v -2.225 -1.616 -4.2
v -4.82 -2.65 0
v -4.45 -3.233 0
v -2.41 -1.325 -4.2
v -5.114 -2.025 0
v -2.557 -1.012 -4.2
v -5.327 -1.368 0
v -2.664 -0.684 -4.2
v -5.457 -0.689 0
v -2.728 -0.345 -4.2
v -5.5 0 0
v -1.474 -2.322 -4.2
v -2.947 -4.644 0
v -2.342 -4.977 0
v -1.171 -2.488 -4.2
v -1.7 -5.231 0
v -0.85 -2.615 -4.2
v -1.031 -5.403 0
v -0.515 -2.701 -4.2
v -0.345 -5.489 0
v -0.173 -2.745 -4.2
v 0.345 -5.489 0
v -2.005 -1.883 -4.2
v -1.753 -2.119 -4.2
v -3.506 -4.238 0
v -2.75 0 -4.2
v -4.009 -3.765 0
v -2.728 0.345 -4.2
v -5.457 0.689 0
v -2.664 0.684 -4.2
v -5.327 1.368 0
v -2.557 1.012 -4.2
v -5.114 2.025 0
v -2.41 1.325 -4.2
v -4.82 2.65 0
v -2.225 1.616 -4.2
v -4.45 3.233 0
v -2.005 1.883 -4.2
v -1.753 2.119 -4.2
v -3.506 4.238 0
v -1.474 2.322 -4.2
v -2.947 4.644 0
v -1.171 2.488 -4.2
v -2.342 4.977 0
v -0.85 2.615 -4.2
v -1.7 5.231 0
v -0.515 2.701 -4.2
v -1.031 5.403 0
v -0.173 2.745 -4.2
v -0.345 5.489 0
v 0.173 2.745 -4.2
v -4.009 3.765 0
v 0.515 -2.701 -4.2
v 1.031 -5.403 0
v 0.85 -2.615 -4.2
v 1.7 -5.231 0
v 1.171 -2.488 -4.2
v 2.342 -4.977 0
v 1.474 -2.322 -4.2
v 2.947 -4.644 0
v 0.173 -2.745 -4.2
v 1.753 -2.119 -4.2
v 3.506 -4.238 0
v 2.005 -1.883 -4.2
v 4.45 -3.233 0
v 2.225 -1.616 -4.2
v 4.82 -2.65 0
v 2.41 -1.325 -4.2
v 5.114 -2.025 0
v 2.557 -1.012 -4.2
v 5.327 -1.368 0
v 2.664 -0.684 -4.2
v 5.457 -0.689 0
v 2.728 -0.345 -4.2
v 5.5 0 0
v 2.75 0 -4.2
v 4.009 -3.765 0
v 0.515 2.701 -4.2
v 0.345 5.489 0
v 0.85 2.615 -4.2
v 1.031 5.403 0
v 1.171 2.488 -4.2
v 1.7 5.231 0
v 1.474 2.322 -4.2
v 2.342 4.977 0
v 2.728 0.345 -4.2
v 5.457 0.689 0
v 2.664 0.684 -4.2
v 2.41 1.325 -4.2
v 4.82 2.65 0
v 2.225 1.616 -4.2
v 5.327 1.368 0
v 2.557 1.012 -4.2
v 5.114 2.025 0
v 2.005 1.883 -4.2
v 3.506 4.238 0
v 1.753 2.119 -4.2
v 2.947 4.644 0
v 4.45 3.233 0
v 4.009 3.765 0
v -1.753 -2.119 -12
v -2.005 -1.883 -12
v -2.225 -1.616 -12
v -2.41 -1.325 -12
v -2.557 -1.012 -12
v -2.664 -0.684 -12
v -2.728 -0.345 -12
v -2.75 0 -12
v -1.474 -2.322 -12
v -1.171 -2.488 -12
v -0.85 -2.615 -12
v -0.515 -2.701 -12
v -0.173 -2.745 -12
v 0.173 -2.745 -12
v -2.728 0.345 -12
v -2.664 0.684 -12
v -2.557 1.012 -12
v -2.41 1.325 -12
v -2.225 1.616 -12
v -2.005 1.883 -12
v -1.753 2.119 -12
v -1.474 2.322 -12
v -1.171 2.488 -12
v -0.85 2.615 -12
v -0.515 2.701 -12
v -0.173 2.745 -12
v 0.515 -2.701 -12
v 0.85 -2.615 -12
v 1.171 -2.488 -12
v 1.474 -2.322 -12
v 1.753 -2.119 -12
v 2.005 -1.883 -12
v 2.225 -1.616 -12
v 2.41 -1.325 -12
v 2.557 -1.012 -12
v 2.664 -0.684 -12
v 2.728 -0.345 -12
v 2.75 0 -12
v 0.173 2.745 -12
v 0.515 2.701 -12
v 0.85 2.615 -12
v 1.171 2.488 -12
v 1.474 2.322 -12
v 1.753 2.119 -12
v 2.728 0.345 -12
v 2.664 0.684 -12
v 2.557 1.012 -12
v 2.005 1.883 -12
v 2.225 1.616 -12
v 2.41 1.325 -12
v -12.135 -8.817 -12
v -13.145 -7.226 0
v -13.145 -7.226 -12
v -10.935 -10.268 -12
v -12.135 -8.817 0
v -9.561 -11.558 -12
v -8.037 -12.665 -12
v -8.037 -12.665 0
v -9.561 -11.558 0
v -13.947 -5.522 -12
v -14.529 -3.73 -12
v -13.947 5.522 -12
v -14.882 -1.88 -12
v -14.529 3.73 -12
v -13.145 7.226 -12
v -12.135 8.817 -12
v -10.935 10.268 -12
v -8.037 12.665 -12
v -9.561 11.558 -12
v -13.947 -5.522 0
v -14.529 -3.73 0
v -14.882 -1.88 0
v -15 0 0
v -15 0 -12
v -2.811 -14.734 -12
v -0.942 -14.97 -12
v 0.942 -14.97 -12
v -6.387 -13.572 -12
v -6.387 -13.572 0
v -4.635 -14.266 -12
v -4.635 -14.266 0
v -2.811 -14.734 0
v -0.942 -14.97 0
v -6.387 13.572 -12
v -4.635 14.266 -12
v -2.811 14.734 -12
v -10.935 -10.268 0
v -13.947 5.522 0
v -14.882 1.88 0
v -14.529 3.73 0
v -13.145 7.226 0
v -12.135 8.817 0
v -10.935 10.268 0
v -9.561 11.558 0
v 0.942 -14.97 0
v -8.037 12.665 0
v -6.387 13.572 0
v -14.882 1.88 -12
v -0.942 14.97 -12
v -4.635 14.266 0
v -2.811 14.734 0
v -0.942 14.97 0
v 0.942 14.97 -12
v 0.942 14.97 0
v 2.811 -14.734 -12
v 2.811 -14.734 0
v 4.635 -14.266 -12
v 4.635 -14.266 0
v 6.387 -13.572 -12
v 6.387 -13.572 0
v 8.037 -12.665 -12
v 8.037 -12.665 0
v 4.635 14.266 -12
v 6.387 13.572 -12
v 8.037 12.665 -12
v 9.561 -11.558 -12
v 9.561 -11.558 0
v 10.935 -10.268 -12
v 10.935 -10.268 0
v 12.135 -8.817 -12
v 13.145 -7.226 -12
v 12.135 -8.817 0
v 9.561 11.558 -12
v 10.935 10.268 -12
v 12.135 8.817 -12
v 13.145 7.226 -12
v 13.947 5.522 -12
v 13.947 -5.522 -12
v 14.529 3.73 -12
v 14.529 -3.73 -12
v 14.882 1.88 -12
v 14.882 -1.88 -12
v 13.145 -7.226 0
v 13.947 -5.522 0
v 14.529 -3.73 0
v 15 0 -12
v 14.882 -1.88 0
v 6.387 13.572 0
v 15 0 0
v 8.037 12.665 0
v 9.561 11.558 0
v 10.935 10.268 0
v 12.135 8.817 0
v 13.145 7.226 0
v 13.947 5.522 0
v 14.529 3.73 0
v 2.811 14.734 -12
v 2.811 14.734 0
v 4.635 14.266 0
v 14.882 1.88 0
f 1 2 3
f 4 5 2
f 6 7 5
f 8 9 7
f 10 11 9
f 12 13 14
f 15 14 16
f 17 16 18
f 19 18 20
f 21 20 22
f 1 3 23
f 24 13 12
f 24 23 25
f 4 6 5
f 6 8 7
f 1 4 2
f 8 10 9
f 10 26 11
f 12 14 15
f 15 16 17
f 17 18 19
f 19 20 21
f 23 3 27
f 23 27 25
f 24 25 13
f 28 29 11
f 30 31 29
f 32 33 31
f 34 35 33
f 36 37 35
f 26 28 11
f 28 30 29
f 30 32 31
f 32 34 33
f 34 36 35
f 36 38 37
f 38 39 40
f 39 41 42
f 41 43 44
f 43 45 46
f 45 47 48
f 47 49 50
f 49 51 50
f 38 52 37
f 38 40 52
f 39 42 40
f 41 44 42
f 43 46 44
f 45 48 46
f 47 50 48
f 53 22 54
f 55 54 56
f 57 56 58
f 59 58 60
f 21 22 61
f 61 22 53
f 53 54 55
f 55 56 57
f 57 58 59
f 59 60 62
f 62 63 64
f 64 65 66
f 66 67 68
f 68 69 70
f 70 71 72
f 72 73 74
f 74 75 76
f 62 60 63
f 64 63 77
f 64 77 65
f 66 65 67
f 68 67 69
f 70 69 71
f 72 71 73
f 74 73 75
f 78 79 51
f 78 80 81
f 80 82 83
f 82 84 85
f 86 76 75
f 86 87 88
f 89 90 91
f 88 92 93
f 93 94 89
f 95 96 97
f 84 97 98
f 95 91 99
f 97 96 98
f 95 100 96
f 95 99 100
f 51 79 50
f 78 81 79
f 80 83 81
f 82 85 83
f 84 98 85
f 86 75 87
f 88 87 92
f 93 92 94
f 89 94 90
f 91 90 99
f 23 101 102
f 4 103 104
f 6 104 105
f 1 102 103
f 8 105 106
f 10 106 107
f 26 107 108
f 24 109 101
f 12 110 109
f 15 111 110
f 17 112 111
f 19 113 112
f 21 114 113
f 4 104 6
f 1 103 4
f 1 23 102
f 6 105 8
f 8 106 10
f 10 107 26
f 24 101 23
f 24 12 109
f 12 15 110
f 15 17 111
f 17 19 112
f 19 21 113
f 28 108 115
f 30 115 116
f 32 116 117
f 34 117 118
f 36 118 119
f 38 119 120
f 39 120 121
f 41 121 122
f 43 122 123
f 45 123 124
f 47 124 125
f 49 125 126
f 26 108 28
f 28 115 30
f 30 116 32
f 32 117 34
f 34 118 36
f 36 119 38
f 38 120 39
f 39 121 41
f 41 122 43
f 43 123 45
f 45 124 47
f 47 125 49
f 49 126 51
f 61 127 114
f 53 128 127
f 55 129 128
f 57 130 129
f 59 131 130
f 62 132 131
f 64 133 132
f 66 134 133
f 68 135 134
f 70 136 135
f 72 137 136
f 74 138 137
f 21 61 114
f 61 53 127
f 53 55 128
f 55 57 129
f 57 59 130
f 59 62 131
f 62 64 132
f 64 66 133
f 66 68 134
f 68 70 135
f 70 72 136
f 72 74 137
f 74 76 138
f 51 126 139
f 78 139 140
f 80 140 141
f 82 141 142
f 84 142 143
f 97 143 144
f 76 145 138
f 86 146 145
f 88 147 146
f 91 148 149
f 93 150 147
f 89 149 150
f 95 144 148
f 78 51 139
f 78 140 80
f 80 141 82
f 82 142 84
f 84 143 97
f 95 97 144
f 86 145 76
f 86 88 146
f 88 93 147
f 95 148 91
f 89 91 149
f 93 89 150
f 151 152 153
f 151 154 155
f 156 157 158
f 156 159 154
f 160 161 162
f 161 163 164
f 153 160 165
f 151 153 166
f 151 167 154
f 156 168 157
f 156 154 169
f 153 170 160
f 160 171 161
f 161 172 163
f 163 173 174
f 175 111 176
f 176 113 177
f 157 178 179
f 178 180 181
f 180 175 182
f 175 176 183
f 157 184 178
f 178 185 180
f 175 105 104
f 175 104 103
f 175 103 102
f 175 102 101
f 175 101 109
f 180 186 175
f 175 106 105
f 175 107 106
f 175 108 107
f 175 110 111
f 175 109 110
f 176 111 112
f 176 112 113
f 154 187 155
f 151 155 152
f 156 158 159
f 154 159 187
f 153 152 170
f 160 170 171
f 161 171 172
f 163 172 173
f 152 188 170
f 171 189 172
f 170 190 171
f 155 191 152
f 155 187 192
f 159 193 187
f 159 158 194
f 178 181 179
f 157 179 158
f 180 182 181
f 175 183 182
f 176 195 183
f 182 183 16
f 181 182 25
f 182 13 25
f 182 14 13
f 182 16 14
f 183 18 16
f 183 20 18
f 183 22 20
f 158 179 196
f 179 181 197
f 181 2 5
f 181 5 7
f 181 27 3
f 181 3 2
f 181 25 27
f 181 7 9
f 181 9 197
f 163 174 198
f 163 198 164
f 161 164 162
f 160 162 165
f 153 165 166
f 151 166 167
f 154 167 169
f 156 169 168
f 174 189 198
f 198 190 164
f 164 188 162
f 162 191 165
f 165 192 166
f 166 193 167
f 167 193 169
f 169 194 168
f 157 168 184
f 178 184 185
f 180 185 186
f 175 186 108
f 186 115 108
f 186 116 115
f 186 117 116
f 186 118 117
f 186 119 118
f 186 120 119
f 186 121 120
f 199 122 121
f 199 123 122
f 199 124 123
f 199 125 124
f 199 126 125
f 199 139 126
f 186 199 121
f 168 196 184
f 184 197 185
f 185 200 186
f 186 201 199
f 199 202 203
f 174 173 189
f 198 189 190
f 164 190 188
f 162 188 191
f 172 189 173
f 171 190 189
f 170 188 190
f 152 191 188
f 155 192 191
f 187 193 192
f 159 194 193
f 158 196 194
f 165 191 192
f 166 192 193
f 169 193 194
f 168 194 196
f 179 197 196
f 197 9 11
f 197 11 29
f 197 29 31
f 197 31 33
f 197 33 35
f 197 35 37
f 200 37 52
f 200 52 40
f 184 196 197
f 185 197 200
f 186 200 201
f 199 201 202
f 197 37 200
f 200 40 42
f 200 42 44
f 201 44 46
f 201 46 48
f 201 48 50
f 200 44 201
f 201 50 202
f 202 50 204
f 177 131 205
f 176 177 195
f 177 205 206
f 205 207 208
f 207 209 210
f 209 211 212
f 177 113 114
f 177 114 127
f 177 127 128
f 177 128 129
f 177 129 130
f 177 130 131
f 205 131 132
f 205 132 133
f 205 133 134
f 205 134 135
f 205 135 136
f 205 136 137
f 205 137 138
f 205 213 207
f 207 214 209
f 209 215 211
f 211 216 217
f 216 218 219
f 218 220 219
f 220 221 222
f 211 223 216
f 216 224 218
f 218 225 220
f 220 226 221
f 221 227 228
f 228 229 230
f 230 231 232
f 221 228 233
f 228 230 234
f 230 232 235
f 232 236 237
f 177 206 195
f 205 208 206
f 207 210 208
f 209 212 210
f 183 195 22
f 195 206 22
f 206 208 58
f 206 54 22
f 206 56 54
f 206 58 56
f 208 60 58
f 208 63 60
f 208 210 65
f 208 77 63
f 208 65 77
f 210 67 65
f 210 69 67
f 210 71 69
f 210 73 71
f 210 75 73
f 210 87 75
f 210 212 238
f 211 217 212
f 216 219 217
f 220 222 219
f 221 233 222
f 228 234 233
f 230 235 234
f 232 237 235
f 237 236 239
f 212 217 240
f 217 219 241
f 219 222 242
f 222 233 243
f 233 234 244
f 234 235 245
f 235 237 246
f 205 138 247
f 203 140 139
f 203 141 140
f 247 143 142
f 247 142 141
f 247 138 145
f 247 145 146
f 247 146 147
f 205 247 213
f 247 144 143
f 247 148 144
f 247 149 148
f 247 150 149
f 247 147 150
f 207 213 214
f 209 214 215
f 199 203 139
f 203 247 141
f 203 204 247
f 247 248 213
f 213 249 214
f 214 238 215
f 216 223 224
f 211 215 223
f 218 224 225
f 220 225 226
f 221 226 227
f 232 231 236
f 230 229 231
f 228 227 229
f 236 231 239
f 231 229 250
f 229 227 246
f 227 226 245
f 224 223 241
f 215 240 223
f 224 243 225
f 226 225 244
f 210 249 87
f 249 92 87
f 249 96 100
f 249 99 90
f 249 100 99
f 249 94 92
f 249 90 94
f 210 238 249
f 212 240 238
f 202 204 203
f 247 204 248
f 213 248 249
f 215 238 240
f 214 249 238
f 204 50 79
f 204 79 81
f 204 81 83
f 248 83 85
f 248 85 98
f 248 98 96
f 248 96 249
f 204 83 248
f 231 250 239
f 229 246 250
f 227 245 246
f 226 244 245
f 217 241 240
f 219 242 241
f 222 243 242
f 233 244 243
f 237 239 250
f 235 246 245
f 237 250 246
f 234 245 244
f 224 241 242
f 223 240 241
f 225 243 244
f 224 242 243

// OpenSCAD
$fn = 50;

difference() {
	union() {
		translate(v = [0, 0, -12.0]) {
			cylinder(h = 12, r = 15.0);
		}
	}
	union() {
		translate(v = [0, 0, 0]) {
			rotate(a = [0, 0, 0]) {
				difference() {
					union() {
						translate(v = [0, 0, -15.0]) {
							cylinder(h = 15, r = 2.25);
						}
						translate(v = [0, 0, -4.2]) {
							cylinder(h = 4.2, r1 = 2.75, r2 = 5.5);
						}
						translate(v = [0, 0, -15.0]) {
							cylinder(h = 15, r = 2.75);
						}
						translate(v = [0, 0, -15.0]) {
							cylinder(h = 15, r = 2.25);
						}
					}
					union();
				}
			}
		}
	}
}
